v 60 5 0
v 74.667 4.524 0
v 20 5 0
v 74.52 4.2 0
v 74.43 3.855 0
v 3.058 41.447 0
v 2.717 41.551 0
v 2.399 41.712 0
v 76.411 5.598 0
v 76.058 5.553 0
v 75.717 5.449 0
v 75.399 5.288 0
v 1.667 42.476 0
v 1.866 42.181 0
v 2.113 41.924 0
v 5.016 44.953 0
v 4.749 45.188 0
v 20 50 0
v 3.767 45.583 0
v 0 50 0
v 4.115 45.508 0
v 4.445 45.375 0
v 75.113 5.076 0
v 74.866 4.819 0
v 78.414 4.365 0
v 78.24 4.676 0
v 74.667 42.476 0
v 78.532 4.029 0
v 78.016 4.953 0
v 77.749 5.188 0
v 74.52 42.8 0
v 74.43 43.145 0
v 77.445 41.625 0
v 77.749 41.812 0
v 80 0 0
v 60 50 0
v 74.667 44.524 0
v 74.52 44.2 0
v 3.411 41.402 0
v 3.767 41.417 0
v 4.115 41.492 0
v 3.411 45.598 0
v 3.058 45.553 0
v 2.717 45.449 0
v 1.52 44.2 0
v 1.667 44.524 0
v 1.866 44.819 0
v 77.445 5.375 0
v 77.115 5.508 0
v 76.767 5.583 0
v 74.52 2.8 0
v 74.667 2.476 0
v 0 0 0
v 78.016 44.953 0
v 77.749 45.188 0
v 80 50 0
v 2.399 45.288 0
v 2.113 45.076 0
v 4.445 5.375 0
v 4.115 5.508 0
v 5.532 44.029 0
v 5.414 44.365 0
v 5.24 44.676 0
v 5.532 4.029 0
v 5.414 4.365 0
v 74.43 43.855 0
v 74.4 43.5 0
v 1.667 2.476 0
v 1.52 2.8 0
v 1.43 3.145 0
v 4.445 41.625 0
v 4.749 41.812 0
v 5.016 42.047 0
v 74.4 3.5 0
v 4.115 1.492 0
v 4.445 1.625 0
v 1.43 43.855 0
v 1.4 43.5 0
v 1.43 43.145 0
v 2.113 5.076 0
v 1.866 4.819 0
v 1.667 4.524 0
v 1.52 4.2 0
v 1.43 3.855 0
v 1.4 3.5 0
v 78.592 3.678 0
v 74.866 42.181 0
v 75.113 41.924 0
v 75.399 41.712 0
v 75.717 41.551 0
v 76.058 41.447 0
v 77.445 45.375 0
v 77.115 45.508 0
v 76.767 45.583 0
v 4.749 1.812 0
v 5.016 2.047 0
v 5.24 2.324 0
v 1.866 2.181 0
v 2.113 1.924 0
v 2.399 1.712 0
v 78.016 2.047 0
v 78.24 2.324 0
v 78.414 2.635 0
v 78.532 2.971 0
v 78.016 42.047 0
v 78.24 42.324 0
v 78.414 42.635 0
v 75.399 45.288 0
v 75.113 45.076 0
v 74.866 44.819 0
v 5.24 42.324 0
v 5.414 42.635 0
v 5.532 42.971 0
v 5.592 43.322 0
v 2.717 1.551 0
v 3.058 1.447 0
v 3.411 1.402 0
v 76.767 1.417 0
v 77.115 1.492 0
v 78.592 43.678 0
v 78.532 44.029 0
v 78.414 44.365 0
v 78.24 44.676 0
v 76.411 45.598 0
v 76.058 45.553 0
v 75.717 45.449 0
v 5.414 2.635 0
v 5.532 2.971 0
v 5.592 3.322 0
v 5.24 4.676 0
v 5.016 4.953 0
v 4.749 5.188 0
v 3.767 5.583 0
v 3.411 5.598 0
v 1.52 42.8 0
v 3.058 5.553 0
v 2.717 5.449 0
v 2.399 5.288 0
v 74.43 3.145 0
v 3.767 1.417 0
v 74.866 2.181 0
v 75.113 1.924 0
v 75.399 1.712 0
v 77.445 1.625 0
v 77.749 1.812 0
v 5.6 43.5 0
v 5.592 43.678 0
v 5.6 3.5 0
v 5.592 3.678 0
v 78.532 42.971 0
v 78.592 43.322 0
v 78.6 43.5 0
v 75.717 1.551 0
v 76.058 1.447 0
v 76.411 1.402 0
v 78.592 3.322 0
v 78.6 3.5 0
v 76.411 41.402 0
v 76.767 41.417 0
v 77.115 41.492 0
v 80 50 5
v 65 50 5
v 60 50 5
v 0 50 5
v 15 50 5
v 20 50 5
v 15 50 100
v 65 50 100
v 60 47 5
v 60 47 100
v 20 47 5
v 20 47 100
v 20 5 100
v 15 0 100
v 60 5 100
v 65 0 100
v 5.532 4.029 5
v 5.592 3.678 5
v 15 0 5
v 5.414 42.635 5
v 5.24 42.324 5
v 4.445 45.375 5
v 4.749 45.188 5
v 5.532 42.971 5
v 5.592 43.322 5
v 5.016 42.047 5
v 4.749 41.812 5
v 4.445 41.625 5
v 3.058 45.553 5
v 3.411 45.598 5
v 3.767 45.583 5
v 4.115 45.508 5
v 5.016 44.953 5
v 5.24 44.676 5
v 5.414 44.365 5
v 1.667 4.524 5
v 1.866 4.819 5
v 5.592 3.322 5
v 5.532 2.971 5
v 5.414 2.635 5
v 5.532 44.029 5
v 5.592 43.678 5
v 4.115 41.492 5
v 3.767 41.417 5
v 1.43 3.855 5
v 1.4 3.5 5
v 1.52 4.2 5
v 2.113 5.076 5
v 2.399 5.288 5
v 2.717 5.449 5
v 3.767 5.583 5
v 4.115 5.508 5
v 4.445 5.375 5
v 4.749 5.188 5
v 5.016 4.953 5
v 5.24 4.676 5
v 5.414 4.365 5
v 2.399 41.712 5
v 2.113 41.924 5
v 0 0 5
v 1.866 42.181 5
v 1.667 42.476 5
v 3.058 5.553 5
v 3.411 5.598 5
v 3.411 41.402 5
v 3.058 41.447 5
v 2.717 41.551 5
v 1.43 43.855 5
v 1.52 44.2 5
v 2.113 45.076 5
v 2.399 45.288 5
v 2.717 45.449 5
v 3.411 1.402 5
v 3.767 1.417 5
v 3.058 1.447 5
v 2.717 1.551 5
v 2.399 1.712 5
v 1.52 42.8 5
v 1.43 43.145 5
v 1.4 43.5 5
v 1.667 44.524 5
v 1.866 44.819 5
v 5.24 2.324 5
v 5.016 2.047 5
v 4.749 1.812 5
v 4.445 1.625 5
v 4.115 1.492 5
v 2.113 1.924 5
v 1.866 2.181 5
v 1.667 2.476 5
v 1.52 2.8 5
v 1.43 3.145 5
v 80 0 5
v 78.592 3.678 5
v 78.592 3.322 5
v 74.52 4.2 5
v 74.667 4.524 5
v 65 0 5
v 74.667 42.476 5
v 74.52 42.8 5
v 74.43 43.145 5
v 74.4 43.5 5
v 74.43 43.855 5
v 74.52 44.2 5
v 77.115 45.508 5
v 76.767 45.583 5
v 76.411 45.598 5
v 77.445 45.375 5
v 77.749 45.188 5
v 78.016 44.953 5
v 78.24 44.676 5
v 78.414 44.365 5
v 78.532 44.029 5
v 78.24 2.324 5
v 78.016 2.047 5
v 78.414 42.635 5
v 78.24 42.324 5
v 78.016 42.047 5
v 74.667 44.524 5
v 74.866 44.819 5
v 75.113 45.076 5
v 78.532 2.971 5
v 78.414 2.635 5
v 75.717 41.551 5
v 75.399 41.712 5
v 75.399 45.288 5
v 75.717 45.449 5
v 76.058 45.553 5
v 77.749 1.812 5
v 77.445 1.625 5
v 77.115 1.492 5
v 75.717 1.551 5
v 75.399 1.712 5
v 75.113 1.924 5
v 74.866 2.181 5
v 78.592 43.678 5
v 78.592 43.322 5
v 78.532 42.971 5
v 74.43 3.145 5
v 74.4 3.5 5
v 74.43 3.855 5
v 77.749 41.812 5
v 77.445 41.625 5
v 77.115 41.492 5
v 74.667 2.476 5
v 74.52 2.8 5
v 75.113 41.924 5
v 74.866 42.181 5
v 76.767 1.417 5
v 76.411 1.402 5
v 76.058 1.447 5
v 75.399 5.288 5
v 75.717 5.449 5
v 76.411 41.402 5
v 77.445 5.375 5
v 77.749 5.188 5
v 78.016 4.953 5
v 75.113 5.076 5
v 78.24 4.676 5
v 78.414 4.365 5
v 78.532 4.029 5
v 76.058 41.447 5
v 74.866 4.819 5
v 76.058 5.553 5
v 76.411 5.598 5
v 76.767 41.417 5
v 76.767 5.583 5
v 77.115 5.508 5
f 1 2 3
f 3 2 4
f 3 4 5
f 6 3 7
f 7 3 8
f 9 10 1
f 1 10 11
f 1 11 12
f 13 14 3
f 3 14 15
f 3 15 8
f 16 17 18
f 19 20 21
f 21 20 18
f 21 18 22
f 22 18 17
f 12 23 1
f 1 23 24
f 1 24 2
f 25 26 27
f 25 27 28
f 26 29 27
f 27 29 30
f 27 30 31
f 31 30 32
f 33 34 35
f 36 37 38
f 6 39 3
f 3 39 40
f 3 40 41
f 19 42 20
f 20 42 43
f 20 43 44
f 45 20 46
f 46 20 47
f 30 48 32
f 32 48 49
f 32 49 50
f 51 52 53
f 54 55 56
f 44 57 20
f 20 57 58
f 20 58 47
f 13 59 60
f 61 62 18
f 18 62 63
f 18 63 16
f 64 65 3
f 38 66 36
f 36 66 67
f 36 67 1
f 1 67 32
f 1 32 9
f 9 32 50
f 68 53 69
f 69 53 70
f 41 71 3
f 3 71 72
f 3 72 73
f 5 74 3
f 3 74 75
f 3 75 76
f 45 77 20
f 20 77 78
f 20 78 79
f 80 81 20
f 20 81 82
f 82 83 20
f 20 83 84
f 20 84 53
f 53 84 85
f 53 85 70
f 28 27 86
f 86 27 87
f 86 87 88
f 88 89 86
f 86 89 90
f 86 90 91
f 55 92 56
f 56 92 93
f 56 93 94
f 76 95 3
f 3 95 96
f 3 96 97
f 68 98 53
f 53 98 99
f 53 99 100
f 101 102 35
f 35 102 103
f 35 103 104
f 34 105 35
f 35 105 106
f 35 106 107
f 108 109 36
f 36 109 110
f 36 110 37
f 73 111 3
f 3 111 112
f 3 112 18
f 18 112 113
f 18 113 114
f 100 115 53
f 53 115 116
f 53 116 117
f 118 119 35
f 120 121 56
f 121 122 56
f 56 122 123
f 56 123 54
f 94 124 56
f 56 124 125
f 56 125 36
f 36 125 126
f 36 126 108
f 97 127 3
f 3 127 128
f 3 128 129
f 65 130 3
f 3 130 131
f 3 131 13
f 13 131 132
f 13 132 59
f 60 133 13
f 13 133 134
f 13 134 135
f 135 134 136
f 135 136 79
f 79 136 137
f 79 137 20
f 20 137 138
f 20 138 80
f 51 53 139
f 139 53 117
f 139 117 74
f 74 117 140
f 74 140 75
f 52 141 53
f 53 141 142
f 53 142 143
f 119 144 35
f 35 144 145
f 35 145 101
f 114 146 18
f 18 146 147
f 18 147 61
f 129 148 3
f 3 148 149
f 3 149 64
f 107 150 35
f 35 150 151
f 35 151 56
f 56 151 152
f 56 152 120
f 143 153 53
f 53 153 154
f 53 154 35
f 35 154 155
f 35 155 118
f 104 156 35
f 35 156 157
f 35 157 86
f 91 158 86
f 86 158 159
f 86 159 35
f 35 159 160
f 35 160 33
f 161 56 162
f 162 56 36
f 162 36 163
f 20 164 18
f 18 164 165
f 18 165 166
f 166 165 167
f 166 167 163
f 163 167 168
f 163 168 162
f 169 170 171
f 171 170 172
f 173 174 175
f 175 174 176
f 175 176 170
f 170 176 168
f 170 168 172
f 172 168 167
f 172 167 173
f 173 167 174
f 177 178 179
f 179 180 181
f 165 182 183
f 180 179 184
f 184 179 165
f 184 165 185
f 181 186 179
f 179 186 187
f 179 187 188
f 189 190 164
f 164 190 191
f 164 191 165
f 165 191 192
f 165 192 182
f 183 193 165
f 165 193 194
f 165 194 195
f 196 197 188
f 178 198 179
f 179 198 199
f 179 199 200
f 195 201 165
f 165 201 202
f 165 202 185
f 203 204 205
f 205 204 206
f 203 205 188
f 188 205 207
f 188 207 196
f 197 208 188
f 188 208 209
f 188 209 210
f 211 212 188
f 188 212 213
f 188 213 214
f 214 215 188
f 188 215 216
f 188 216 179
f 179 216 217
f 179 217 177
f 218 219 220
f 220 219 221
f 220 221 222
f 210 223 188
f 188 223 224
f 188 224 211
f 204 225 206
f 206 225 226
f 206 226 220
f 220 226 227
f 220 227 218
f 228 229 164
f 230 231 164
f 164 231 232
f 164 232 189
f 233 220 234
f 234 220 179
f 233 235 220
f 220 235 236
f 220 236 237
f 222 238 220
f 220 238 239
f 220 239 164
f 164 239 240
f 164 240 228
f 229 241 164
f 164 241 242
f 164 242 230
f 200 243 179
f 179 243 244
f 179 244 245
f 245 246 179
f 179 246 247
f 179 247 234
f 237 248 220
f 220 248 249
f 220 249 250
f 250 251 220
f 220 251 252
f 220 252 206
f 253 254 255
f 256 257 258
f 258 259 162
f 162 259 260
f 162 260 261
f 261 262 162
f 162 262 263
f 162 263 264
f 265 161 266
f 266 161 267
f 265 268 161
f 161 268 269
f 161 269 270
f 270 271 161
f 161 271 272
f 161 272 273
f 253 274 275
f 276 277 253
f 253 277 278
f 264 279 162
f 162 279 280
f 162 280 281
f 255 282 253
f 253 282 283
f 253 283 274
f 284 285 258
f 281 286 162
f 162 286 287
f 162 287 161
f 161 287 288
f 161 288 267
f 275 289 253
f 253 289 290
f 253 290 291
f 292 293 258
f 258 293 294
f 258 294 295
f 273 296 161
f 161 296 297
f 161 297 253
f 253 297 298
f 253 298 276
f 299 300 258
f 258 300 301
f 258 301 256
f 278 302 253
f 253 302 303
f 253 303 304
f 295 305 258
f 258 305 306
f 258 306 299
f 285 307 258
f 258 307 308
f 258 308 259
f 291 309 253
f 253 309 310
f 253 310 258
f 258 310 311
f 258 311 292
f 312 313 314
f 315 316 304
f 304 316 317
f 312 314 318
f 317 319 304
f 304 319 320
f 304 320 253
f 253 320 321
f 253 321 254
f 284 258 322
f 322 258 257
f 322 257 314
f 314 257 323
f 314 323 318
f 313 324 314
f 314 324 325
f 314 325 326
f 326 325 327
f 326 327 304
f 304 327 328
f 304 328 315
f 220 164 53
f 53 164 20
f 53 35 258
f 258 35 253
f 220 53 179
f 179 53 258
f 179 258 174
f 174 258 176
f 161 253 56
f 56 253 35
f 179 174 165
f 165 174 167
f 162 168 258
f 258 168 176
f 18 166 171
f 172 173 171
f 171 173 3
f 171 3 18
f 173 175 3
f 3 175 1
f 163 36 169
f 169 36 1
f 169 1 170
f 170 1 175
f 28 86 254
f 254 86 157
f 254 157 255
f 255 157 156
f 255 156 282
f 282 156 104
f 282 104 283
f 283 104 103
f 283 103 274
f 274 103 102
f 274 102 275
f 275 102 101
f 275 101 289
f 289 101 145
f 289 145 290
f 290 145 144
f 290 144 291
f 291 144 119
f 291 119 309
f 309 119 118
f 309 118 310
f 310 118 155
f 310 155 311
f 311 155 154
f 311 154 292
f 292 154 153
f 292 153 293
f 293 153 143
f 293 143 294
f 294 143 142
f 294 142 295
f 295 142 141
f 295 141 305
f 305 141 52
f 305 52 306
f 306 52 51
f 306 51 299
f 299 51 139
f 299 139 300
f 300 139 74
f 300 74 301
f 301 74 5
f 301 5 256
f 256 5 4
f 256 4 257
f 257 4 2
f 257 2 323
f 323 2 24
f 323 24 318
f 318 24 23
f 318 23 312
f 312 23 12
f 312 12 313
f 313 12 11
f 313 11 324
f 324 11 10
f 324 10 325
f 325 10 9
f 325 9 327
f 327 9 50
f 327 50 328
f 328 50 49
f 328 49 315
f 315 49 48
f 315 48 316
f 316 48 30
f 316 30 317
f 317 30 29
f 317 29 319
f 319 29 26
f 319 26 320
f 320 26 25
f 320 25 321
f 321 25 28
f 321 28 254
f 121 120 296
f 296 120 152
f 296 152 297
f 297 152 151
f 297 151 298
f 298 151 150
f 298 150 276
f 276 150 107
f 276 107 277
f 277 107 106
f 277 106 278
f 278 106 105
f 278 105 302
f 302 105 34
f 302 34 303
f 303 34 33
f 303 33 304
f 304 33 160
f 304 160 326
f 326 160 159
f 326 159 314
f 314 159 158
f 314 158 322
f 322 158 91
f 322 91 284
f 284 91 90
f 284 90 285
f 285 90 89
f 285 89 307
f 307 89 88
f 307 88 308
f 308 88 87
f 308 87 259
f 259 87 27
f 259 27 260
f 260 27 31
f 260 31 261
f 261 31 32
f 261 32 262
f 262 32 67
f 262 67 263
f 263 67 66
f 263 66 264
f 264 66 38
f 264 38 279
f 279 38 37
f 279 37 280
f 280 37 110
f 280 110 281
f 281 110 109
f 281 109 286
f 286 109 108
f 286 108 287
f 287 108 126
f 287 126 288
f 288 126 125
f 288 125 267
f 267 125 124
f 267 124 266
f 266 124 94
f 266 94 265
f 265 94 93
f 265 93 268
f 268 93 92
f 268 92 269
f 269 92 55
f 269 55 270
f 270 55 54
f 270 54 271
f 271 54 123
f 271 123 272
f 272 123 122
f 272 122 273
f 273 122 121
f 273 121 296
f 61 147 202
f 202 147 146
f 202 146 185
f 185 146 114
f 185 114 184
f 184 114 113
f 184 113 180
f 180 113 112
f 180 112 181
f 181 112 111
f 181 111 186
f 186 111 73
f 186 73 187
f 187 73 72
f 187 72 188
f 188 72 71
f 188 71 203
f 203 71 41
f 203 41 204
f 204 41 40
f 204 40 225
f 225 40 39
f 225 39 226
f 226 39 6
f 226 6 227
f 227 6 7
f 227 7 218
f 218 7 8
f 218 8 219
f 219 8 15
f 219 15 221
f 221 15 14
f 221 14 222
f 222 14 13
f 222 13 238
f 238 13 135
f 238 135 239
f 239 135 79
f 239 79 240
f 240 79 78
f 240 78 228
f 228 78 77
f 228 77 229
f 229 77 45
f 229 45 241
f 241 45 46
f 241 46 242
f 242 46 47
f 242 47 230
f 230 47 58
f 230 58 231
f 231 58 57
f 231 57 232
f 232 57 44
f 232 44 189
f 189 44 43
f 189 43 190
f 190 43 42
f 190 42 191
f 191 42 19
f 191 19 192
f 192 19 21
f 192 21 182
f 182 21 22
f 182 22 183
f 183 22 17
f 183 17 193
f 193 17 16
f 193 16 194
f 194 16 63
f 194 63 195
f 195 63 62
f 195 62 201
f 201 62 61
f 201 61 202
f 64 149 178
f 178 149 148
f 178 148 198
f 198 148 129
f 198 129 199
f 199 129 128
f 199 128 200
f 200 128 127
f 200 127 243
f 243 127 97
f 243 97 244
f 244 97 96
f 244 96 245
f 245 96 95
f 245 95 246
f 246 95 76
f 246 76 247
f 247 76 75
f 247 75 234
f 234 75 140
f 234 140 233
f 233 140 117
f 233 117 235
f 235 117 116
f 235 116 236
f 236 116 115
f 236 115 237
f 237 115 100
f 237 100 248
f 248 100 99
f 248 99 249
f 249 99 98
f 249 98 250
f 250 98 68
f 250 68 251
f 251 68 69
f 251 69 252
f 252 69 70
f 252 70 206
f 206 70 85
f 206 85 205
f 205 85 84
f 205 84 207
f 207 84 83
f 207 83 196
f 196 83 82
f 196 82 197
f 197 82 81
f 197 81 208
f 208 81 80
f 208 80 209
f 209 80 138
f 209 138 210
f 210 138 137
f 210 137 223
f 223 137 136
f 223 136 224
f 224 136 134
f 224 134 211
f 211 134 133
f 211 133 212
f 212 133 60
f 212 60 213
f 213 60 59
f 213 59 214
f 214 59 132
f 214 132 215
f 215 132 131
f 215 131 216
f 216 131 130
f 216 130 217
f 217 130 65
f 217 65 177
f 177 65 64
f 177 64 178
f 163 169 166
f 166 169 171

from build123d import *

# Parameters (mm, degrees)
SKETCH_1_W          = 80
SKETCH_1_H          = 50
EXTRUDE_1_DEPTH     = 5
SKETCH_2_W          = 50
SKETCH_2_H          = 50
EXTRUDE_2_DEPTH     = 100
SKETCH_4_W          = 40
SKETCH_4_H          = 42
CUT_EXTRUDE_1_DEPTH = 138.477270849
SKETCH_5_R          = 2.1
CUT_EXTRUDE_2_DEPTH = 10
CUT_EXTRUDE_START   = 40
SKETCH_7_W          = 40
SKETCH_7_H          = 5
CUT_EXTRUDE_4_DEPTH = 98.477270849


with BuildPart() as part:
    # 草圖1 → 填料-伸長1 (new body)
    with BuildSketch(Plane.XY):
        with Locations((40, 25)):
            Rectangle(SKETCH_1_W, SKETCH_1_H)
    extrude(amount=EXTRUDE_1_DEPTH)

    # 草圖2 → 填料-伸長2 (add)
    with BuildSketch(Plane.XY):
        with Locations((40, 25)):
            Rectangle(SKETCH_2_W, SKETCH_2_H)
    extrude(amount=EXTRUDE_2_DEPTH)

    # 草圖4 → 除料-伸長1 (cut, through all)
    with BuildSketch(Plane.XY):
        with Locations((40, 26)):
            Rectangle(SKETCH_4_W, SKETCH_4_H)
    extrude(amount=CUT_EXTRUDE_1_DEPTH, mode=Mode.SUBTRACT)

    # 草圖5 → 除料-伸長2 (cut)
    with BuildSketch(Plane.XY):
        with Locations(Location((76.5, 3.5, 0), (0, 0, 180))):
            Circle(SKETCH_5_R)
        with Locations(Location((76.5, 43.5, 0), (0, 0, 180))):
            Circle(SKETCH_5_R)
        with Locations(Location((3.5, 3.5, 0), (0, 0, 180))):
            Circle(SKETCH_5_R)
        with Locations(Location((3.5, 43.5, 0), (0, 0, 180))):
            Circle(SKETCH_5_R)
    extrude(amount=CUT_EXTRUDE_2_DEPTH, mode=Mode.SUBTRACT)

    # 草圖7 → 除料-伸長4 (cut, through all)
    with BuildSketch(Plane(origin=(0, 0, 0), x_dir=(1, 0, 0), z_dir=(0, 1, 0)).offset(CUT_EXTRUDE_START)):
        with Locations((40, -2.5)):
            Rectangle(SKETCH_7_W, SKETCH_7_H)
    extrude(amount=CUT_EXTRUDE_4_DEPTH, mode=Mode.SUBTRACT)


solid = part.part
